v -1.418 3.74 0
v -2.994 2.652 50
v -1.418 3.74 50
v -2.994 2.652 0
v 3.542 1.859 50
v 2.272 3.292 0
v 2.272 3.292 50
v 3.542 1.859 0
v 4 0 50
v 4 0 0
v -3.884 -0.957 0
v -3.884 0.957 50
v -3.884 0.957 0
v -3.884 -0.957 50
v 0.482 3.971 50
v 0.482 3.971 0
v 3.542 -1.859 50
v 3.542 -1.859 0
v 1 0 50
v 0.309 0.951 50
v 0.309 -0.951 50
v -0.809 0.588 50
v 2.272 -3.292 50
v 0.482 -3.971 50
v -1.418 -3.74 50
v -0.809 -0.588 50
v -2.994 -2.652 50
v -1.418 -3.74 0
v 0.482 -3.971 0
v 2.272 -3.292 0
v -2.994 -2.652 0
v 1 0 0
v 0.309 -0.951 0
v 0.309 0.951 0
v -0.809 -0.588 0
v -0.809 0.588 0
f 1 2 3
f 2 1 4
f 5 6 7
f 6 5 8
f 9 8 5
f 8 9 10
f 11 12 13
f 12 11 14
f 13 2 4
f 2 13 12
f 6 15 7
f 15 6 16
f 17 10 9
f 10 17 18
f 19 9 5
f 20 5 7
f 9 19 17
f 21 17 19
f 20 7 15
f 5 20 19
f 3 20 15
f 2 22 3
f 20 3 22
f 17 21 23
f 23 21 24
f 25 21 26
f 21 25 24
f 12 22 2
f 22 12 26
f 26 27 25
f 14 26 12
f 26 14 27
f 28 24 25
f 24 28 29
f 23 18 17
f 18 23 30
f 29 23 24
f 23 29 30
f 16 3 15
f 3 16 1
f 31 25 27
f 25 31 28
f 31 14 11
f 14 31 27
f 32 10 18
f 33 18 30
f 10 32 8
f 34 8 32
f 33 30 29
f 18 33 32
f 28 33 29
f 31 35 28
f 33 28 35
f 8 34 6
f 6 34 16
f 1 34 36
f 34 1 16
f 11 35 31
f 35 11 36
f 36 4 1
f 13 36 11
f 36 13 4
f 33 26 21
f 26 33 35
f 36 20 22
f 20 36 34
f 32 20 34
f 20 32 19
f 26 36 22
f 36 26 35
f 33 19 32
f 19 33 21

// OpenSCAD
// Axle parameters
diameter = 8;
length = 50;
hole_diameter = 2;

difference() {
  cylinder(h = length, d = diameter);
  cylinder(h = length + 1, d = hole_diameter);
}
